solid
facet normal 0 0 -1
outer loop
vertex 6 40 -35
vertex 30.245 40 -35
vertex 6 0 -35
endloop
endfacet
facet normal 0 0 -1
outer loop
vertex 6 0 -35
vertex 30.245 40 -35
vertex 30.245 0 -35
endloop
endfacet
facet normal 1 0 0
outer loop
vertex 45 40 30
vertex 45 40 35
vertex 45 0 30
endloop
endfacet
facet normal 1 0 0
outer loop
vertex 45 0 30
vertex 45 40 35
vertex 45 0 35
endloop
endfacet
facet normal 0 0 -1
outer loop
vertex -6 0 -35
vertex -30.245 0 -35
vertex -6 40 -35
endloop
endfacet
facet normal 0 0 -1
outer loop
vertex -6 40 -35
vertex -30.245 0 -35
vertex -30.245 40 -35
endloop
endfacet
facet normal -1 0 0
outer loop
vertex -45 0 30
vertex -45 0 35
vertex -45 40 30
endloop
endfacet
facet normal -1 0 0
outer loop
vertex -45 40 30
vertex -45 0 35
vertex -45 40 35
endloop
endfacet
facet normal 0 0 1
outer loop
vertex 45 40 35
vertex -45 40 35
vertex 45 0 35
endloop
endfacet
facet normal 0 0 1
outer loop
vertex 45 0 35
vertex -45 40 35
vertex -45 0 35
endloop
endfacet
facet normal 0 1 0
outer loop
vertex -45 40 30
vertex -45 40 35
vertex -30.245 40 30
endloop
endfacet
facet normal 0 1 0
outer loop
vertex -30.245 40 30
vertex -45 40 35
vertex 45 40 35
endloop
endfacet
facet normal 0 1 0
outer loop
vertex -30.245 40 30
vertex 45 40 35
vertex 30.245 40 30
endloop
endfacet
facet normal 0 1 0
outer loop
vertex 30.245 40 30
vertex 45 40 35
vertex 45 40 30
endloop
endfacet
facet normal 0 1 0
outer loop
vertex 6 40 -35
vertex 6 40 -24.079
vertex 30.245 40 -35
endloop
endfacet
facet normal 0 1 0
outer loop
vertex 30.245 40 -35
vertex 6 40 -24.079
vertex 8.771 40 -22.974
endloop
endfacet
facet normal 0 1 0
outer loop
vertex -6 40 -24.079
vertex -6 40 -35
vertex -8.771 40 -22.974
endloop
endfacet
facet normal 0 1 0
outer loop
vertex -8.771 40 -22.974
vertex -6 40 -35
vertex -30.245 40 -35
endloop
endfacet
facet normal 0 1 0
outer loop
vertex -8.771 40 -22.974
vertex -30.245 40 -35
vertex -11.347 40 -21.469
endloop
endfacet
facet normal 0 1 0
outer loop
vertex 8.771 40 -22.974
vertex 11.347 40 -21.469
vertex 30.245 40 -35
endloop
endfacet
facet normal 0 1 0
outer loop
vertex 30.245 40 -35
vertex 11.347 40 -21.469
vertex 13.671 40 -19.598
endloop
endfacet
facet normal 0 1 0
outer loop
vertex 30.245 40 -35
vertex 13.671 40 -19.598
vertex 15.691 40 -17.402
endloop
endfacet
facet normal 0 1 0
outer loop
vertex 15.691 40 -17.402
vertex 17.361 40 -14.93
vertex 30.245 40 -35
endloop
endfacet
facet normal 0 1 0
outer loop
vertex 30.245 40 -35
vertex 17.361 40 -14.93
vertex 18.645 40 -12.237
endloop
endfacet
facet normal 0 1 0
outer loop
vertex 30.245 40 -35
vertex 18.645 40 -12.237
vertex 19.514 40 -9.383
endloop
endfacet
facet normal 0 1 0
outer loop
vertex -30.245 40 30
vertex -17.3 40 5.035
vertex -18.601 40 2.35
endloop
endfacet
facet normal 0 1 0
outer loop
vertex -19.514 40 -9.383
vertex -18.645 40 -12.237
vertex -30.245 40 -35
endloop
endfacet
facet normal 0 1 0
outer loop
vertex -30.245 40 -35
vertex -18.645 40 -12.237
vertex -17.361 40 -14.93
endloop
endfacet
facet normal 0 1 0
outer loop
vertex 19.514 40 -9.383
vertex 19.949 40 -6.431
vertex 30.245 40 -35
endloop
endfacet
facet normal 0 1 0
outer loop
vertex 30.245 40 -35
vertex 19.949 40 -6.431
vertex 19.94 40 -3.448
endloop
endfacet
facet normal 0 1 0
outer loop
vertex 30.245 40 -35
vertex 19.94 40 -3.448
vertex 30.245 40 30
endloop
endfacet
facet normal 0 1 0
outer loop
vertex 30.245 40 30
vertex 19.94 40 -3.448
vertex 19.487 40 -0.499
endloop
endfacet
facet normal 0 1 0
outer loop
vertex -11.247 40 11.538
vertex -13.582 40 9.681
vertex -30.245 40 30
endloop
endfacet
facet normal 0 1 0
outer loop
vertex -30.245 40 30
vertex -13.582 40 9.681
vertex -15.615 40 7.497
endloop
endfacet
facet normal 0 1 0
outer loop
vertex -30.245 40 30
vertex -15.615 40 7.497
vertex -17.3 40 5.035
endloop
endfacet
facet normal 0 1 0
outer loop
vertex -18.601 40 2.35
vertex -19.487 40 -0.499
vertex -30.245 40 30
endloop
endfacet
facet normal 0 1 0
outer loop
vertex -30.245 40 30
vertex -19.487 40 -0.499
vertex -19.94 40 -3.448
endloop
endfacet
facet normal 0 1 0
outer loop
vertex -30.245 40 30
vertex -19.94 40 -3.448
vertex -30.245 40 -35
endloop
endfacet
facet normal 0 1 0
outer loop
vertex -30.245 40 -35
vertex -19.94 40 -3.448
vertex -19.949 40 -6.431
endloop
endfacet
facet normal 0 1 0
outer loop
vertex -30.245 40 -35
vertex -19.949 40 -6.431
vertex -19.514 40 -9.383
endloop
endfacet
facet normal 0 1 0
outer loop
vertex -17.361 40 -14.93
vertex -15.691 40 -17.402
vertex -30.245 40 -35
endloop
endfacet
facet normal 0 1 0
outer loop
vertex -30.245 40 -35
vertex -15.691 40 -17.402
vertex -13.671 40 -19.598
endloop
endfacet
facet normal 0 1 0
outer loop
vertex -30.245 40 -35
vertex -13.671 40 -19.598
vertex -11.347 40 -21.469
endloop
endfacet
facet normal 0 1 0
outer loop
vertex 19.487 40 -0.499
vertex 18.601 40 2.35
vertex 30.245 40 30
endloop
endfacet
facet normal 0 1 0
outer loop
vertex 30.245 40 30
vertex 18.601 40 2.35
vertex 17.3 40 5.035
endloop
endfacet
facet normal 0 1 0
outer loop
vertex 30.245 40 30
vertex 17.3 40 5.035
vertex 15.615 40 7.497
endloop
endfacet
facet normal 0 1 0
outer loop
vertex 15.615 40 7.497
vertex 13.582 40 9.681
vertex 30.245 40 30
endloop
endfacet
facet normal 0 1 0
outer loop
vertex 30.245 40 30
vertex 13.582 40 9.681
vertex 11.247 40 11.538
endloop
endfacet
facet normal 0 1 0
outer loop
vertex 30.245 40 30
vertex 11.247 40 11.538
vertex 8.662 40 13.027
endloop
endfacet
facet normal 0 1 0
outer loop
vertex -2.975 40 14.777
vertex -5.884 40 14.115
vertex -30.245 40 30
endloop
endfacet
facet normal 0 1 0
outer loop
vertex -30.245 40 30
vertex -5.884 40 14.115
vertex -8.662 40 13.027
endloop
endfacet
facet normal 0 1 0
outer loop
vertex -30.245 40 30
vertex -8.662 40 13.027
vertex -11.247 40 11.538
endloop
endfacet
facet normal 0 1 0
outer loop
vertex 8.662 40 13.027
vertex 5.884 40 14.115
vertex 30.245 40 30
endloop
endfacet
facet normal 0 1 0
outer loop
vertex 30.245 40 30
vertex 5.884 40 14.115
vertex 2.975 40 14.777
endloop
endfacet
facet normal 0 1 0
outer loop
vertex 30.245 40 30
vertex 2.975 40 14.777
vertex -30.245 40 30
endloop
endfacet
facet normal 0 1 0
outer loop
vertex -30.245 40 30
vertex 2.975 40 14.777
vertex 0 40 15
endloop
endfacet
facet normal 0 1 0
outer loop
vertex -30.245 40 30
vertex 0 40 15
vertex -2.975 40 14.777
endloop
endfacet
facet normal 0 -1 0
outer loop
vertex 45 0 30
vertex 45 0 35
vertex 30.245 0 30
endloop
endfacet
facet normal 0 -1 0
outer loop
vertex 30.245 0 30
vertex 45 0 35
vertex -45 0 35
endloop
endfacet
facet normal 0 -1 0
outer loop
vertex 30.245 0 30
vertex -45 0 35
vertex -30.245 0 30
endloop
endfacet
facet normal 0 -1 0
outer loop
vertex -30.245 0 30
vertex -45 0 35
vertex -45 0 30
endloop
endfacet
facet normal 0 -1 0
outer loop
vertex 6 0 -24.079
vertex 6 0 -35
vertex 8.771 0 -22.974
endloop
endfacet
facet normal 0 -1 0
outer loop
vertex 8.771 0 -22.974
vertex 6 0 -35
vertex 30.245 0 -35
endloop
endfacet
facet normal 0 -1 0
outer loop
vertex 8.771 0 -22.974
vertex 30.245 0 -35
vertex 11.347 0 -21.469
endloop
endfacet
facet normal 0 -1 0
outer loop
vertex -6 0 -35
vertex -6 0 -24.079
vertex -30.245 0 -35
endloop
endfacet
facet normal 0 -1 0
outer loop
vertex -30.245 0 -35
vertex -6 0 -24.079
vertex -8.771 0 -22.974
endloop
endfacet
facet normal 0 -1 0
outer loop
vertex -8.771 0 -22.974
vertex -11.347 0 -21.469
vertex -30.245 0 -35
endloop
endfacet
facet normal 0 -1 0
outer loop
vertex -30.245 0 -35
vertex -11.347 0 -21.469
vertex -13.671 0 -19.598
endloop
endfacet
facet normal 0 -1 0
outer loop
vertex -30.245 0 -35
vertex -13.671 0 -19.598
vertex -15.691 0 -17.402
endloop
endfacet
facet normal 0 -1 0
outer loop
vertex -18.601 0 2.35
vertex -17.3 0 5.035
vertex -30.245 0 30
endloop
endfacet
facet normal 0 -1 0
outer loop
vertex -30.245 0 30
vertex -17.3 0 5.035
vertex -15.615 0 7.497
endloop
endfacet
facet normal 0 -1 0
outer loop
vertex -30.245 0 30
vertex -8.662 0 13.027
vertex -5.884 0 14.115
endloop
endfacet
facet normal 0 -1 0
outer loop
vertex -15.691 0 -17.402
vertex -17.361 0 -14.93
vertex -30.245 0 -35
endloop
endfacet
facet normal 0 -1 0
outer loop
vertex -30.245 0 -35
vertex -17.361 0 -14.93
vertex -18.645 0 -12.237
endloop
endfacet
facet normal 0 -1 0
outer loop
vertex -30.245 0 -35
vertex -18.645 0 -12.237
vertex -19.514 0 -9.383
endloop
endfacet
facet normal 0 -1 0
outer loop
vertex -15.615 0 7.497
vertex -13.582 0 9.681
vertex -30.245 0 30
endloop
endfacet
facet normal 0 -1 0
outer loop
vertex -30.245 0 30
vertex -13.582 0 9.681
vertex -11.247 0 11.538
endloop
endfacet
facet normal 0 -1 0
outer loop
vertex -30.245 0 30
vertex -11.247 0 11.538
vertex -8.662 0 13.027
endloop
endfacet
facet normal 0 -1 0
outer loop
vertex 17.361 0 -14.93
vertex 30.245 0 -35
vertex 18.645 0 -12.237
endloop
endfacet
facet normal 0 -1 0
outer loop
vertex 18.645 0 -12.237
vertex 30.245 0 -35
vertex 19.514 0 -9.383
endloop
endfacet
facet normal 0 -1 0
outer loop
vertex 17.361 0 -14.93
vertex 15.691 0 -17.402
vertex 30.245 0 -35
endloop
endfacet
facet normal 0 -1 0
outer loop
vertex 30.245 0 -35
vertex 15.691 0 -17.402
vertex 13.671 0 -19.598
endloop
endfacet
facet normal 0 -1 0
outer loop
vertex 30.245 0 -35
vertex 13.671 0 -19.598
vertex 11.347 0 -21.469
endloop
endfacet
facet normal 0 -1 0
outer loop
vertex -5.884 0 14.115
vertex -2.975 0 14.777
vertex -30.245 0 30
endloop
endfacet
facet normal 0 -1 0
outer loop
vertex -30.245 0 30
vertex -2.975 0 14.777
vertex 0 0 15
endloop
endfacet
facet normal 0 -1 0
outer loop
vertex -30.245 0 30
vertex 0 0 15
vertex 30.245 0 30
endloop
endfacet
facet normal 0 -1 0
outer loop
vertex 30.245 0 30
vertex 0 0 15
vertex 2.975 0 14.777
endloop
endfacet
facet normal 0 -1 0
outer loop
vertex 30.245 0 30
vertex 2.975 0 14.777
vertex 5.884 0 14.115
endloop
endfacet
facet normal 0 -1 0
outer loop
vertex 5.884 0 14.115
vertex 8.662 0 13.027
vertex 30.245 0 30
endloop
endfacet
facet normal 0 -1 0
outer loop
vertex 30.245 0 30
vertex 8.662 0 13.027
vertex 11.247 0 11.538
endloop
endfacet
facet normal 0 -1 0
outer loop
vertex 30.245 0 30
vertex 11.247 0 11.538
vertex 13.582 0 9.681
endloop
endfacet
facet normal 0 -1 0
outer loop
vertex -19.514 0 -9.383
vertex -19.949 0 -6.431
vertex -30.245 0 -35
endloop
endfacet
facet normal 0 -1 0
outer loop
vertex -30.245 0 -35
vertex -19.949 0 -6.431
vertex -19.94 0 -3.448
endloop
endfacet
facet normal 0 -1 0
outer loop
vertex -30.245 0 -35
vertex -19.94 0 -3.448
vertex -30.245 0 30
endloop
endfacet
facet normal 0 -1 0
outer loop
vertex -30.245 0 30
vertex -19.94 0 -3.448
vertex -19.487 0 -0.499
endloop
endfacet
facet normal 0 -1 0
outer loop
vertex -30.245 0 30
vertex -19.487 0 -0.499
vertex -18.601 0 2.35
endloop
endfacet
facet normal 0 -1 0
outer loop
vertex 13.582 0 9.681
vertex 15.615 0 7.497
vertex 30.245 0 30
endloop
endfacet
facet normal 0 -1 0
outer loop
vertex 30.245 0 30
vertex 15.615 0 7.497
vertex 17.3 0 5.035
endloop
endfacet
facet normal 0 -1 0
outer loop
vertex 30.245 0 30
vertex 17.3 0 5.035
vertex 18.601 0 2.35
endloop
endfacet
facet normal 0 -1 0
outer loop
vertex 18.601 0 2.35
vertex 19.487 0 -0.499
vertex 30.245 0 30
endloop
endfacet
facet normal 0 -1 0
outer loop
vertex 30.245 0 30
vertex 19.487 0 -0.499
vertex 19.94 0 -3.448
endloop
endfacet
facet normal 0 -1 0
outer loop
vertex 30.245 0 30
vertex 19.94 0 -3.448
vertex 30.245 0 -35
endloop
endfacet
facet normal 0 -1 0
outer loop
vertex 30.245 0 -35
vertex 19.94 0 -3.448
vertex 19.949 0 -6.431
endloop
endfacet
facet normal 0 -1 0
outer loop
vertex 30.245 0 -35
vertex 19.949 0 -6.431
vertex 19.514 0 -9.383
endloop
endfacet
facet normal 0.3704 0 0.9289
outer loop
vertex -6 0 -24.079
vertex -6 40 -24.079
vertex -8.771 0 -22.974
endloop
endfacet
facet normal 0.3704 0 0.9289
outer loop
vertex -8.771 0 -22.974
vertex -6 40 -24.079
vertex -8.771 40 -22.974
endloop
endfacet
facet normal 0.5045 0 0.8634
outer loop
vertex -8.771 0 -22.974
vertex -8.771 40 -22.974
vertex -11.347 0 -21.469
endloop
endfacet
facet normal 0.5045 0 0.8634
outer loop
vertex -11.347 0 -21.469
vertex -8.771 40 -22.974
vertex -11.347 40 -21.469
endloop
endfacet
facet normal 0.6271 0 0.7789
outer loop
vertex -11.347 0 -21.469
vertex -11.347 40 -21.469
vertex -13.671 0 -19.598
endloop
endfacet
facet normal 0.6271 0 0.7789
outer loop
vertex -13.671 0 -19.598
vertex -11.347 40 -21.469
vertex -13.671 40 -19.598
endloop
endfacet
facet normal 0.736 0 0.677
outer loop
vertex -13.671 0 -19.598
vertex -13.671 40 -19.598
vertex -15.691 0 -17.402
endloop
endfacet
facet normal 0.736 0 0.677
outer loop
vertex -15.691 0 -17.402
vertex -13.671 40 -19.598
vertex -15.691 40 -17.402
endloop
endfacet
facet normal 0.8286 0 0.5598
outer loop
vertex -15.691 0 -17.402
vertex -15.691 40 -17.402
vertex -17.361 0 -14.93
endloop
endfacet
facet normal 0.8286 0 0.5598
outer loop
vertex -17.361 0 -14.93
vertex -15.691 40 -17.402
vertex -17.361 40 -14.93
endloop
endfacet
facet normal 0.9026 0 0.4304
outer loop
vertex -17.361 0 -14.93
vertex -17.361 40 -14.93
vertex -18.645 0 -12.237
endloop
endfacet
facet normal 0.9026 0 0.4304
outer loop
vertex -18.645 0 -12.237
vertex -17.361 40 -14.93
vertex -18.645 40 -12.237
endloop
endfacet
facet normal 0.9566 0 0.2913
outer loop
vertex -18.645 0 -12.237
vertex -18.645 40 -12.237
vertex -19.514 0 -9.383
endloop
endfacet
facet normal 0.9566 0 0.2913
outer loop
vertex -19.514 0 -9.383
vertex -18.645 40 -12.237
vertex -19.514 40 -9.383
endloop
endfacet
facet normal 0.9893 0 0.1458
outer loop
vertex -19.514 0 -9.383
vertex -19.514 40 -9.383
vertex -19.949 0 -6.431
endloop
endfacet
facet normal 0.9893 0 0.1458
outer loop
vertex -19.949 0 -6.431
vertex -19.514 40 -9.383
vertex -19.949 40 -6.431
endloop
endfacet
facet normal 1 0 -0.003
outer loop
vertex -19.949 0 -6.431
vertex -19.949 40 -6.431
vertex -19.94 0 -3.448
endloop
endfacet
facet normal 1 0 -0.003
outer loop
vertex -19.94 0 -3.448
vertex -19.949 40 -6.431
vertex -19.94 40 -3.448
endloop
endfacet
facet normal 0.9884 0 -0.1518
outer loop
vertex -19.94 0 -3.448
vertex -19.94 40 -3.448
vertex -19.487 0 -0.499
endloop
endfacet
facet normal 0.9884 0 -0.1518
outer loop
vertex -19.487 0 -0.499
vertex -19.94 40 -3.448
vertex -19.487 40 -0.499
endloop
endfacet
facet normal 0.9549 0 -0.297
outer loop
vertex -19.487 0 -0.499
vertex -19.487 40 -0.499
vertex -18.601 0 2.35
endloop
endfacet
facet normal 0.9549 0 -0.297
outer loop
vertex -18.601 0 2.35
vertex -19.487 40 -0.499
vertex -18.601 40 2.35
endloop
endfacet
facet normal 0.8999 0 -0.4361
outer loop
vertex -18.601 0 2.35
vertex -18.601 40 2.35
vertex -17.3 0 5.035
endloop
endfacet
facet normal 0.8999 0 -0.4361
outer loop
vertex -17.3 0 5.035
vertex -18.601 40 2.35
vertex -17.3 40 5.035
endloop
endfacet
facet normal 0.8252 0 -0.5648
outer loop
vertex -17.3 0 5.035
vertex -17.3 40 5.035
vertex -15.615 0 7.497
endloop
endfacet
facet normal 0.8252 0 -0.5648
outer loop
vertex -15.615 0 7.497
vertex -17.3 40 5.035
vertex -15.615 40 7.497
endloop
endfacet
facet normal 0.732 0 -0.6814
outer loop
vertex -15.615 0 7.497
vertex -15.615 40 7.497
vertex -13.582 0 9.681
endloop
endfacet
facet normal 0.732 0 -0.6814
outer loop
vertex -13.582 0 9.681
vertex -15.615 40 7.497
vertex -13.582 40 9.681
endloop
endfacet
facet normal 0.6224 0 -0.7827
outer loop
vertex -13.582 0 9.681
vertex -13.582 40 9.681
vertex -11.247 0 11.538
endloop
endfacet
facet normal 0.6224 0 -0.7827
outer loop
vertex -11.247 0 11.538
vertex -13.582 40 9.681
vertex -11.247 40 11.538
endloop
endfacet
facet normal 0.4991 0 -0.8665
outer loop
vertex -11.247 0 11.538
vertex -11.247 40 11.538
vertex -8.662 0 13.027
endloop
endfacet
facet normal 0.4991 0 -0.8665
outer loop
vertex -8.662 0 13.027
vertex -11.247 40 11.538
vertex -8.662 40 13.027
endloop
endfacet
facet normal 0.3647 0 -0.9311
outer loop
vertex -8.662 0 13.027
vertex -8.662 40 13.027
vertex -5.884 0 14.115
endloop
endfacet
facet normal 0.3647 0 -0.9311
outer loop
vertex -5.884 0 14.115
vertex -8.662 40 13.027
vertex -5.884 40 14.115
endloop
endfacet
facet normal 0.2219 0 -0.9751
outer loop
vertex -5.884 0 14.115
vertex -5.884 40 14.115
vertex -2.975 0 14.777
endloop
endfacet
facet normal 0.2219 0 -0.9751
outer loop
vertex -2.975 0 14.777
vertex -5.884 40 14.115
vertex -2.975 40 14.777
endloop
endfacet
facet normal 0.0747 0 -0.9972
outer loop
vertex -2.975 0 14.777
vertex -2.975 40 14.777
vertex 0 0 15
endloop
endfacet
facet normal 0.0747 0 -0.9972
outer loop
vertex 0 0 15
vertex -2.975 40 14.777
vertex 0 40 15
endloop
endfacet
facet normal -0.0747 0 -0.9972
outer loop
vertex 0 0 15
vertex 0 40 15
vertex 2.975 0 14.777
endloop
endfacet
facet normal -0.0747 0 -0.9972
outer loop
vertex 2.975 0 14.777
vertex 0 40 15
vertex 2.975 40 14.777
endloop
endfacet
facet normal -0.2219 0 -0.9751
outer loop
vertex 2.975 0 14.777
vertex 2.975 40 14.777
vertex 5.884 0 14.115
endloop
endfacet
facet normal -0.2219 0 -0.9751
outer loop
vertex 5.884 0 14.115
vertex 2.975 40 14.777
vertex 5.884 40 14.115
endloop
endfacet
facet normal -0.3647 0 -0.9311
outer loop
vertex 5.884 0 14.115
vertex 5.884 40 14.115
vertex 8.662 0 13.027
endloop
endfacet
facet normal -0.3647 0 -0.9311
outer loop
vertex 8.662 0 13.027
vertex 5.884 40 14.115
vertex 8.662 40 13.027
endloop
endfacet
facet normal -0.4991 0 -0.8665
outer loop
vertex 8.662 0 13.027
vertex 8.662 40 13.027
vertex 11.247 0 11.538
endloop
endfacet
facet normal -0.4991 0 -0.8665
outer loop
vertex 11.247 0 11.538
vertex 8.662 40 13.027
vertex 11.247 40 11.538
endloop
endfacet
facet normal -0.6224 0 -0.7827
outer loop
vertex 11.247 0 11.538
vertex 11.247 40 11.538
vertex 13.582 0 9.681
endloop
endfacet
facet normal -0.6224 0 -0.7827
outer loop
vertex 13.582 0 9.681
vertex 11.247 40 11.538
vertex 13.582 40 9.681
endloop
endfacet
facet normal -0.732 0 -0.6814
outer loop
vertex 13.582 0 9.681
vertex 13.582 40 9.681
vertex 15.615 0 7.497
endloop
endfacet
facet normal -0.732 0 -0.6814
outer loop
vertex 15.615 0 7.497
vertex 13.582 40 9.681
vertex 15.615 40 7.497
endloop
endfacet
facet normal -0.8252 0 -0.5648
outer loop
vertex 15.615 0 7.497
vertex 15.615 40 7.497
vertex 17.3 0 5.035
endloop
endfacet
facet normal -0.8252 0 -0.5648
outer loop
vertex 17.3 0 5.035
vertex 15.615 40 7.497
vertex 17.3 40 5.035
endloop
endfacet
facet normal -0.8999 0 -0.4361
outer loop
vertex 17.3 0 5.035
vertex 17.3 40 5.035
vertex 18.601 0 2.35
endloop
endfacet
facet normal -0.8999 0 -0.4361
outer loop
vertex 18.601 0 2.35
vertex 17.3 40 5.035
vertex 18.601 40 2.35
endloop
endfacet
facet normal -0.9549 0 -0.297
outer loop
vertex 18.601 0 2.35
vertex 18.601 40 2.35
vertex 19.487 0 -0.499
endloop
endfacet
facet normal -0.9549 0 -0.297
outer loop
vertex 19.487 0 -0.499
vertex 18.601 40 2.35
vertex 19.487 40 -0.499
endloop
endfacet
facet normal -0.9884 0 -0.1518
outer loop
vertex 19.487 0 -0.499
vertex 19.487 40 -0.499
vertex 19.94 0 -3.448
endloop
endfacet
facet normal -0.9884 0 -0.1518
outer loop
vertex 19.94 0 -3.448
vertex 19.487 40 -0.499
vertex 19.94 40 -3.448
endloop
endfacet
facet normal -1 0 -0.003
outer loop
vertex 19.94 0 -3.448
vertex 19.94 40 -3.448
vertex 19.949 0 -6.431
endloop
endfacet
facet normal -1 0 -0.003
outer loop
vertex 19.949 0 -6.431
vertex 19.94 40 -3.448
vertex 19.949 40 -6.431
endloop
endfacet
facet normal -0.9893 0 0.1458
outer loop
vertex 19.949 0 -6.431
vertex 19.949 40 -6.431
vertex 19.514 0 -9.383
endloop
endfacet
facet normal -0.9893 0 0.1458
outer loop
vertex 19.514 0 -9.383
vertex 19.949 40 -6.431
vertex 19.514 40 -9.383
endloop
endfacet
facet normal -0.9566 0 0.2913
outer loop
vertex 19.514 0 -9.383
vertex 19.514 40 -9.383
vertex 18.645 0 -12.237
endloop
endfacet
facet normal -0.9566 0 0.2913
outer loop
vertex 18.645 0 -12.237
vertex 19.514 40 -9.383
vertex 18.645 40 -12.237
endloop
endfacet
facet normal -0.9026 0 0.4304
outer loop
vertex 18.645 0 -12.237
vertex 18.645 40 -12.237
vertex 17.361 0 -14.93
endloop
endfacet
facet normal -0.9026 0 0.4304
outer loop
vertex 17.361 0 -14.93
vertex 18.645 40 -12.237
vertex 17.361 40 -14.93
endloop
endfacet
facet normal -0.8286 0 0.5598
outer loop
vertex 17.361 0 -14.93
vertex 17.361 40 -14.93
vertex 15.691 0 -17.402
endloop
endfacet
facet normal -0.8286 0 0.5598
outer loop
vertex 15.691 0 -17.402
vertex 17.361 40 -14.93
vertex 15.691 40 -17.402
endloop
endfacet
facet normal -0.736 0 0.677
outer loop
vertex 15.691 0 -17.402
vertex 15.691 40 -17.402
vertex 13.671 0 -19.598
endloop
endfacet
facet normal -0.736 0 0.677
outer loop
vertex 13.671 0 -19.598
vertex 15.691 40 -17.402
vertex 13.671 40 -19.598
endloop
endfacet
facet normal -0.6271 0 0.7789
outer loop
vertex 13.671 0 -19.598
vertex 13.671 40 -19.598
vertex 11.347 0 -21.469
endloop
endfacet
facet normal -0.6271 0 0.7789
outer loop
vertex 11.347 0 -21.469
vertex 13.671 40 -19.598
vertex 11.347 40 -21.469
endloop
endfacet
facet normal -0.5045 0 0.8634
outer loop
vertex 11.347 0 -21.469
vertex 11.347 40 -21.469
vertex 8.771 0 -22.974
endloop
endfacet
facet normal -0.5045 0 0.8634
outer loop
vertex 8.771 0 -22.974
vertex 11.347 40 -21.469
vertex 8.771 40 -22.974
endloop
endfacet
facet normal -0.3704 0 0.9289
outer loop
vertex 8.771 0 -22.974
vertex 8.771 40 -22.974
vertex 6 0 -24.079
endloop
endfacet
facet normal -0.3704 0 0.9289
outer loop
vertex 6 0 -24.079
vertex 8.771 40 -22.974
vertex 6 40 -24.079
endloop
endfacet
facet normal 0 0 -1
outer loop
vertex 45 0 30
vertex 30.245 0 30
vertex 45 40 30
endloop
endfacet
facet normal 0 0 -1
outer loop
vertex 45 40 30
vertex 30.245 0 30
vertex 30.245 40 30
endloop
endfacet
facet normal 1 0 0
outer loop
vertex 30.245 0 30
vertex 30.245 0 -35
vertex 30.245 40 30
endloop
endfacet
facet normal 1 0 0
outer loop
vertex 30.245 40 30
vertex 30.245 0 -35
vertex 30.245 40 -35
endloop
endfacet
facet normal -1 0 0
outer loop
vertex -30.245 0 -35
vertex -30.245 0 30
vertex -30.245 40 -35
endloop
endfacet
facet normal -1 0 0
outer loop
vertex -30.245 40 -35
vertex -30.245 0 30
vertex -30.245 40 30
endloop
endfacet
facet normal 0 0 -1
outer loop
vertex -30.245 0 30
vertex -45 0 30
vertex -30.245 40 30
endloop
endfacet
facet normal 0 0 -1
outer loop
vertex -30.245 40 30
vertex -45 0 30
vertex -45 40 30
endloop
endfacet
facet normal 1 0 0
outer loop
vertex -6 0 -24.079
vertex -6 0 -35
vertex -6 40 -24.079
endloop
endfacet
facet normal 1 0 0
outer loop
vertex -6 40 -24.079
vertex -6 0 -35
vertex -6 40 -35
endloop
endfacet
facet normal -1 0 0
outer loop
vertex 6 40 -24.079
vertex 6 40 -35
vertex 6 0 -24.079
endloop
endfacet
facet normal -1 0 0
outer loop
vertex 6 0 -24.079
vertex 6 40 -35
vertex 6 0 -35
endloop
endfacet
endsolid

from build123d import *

# Parameters (mm, degrees)
SKETCH1_W           = 90
SKETCH1_H           = 70
BOSS_EXTRUDE1_DEPTH = 40
SKETCH4_R           = 20
CUT_EXTRUDE1_DEPTH  = 40
SKETCH5_W           = 14.755351209
SKETCH5_H           = 65
CUT_EXTRUDE2_DEPTH  = 40
SKETCH6_W           = 12
SKETCH6_H           = 27.02325336
CUT_EXTRUDE3_DEPTH  = 40


with BuildPart() as part:
    # Sketch1 → Boss-Extrude1 (new body)
    with BuildSketch(Plane(origin=(0, 0, 0), x_dir=(1, 0, 0), z_dir=(0, 1, 0))):
        Rectangle(SKETCH1_W, SKETCH1_H)
    extrude(amount=BOSS_EXTRUDE1_DEPTH)

    # Sketch4 → Cut-Extrude1 (cut)
    with BuildSketch(Plane(origin=(0, 40, 0), x_dir=(1, 0, 0), z_dir=(0, 1, 0))):
        with Locations(Location((0, 5, 0), (0, 0, 270))):
            Circle(SKETCH4_R)
    extrude(amount=-CUT_EXTRUDE1_DEPTH, mode=Mode.SUBTRACT)

    # Sketch5 → Cut-Extrude2 (cut)
    with BuildSketch(Plane(origin=(0, 40, 0), x_dir=(1, 0, 0), z_dir=(0, 1, 0))):
        with Locations((-37.622324396, 2.5)):
            Rectangle(SKETCH5_W, SKETCH5_H)
        with Locations((37.622324396, 2.5)):
            Rectangle(SKETCH5_W, SKETCH5_H)
    extrude(amount=-CUT_EXTRUDE2_DEPTH, mode=Mode.SUBTRACT)

    # Sketch6 → Cut-Extrude3 (cut)
    with BuildSketch(Plane(origin=(0, 40, 0), x_dir=(1, 0, 0), z_dir=(0, 1, 0))):
        with Locations((0, 35)):
            Rectangle(SKETCH6_W, SKETCH6_H)
    extrude(amount=-CUT_EXTRUDE3_DEPTH, mode=Mode.SUBTRACT)


solid = part.part
